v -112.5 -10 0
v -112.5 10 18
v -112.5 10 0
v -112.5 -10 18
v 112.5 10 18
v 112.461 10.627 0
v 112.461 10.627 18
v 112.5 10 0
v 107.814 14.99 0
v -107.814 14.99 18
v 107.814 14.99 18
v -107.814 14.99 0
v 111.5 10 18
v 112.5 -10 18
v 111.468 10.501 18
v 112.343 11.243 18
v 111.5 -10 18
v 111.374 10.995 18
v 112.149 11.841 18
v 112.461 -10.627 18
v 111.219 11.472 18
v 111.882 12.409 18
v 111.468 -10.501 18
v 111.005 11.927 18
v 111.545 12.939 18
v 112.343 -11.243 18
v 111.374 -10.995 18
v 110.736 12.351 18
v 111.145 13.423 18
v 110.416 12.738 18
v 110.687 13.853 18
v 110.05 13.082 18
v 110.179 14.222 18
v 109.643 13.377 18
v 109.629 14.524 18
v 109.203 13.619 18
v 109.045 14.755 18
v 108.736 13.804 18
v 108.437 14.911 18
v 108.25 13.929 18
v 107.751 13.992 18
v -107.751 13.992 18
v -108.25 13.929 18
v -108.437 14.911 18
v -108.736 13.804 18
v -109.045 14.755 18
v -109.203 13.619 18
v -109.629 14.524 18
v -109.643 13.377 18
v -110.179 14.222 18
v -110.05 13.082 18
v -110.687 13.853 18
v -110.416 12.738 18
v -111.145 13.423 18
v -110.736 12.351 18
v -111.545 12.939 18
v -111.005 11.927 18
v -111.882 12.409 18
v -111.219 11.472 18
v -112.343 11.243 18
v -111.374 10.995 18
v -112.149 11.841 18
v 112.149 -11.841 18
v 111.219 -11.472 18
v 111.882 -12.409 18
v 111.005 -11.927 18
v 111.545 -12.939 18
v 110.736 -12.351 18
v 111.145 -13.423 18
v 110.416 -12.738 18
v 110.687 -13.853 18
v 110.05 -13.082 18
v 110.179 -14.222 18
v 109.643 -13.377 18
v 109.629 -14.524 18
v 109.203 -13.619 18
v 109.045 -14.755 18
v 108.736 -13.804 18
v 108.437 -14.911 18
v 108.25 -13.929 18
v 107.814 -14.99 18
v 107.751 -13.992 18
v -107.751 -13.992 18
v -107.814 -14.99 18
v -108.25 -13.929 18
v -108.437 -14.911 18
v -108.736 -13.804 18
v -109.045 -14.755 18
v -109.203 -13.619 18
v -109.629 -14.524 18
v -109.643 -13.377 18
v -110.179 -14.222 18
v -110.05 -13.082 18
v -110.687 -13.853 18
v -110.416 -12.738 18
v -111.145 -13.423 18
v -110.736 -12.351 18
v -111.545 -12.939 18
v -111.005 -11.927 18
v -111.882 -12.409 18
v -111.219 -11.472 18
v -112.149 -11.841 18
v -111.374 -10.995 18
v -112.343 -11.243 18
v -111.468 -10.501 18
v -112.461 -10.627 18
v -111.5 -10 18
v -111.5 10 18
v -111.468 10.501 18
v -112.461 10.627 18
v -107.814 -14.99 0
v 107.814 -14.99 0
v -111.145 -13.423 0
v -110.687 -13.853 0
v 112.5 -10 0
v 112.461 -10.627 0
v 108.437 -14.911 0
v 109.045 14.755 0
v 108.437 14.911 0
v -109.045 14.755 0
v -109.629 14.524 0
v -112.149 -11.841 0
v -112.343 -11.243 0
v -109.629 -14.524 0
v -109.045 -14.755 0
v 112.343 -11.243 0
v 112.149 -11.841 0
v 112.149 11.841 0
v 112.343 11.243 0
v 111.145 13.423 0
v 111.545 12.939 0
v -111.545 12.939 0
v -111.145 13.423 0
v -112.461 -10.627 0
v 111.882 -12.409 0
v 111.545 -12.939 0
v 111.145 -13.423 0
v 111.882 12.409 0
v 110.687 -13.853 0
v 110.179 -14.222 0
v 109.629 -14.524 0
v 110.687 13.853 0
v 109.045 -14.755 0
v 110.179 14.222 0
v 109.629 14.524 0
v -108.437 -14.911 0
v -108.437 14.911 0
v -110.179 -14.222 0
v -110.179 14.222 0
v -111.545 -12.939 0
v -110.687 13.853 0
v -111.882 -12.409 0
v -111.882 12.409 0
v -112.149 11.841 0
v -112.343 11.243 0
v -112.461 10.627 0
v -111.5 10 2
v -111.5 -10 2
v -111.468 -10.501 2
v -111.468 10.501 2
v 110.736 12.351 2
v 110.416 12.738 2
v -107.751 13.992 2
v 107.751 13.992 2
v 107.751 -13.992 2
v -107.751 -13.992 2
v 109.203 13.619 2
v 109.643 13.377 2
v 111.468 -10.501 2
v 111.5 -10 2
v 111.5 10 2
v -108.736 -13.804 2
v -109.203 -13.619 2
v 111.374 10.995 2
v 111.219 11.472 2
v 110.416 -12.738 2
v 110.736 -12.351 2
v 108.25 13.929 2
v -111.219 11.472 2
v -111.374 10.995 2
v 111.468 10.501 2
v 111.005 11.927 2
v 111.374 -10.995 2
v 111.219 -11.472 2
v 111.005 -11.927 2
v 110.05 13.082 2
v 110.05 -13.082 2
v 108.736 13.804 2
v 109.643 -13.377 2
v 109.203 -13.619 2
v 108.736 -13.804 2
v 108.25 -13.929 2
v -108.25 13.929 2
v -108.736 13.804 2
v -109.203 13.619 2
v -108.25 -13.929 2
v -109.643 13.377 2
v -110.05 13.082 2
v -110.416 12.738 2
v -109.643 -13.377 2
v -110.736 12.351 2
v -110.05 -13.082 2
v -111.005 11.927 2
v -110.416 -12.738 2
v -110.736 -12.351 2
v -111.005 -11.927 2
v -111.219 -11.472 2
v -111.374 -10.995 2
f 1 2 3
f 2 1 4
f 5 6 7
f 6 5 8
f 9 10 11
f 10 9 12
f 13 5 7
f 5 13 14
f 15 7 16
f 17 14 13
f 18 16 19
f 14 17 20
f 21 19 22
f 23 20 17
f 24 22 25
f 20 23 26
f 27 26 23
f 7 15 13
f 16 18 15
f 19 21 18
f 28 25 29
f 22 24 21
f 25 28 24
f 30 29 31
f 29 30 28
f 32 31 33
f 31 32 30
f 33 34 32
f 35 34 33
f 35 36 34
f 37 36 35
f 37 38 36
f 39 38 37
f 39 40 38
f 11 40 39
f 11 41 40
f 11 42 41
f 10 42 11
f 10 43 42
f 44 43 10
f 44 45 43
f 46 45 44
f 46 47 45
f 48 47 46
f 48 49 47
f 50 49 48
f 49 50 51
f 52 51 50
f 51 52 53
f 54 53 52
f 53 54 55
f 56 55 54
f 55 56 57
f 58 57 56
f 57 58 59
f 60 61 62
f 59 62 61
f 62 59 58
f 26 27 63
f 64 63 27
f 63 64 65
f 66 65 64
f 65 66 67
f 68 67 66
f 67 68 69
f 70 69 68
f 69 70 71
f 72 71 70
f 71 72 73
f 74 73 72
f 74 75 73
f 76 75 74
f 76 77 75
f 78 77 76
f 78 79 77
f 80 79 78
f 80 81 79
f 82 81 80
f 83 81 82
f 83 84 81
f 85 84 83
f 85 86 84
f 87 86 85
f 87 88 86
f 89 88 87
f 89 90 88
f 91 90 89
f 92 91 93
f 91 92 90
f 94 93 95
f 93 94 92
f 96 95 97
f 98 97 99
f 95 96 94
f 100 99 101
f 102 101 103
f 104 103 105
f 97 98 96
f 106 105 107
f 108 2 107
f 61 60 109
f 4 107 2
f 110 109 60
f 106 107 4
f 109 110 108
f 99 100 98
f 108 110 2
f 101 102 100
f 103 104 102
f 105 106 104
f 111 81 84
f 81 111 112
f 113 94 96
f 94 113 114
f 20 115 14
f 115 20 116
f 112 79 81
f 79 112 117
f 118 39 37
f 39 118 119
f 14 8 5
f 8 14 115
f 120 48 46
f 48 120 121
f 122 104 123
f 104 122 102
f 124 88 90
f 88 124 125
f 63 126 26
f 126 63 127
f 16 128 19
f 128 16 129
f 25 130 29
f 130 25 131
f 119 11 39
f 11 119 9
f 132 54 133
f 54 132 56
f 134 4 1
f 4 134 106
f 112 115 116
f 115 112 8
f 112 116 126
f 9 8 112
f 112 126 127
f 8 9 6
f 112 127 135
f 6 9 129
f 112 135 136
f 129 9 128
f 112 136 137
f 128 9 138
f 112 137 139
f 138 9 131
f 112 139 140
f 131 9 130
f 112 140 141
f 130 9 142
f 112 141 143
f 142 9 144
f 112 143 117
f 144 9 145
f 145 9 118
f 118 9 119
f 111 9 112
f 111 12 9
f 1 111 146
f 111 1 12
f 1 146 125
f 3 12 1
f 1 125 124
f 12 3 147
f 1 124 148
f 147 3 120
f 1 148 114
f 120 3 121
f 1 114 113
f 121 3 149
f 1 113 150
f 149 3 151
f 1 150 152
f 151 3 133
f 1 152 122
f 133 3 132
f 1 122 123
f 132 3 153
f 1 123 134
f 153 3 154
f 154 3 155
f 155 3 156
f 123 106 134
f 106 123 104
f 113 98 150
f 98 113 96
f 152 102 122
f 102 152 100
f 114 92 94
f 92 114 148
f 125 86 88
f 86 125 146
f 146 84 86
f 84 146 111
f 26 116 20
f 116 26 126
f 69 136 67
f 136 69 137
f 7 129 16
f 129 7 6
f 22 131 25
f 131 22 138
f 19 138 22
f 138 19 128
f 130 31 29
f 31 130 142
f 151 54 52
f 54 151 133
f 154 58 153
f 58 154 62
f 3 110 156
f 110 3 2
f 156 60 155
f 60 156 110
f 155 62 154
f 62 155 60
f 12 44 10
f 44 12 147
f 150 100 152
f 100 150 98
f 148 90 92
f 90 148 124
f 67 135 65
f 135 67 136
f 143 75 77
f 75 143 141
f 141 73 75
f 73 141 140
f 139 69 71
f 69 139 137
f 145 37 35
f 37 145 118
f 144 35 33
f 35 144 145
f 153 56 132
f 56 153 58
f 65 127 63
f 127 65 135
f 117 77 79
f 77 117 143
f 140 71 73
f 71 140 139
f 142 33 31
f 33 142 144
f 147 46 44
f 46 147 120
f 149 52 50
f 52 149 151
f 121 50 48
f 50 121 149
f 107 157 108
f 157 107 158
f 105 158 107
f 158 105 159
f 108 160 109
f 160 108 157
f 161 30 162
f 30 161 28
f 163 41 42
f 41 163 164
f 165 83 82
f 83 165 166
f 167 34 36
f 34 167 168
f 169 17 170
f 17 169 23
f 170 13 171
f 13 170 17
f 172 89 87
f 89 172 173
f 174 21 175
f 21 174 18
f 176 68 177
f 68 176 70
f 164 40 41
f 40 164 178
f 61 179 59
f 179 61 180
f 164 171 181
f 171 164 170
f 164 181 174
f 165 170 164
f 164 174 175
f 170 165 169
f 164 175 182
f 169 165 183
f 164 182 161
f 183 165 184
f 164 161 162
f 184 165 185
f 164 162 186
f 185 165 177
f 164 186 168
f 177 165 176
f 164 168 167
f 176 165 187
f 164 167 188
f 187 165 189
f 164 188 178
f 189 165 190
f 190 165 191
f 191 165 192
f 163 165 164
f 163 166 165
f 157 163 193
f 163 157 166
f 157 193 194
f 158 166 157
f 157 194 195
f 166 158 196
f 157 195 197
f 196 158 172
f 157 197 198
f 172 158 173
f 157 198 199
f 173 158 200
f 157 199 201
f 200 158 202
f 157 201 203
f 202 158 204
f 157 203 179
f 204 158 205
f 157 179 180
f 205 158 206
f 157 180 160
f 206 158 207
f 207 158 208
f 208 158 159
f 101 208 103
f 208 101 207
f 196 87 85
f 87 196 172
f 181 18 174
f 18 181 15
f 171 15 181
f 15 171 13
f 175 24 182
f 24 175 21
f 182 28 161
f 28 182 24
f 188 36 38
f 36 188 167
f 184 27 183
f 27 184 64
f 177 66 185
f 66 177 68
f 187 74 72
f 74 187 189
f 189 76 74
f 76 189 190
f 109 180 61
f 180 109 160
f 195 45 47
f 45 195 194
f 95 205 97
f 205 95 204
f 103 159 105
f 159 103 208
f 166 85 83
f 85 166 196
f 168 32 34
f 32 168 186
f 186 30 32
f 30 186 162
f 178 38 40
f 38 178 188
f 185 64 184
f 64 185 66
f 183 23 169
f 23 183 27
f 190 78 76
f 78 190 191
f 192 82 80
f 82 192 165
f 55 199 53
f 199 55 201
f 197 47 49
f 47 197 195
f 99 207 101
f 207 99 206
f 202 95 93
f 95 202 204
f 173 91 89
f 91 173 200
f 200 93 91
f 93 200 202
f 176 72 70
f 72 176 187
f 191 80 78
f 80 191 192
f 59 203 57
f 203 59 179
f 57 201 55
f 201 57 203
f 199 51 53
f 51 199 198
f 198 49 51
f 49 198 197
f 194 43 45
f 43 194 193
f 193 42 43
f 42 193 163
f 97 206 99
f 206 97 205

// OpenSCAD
$fn = 50;


difference() {
	union() {
		hull() {
			translate(v = [-107.5000000000, 10.0000000000, 0]) {
				cylinder(h = 18, r = 5);
			}
			translate(v = [107.5000000000, 10.0000000000, 0]) {
				cylinder(h = 18, r = 5);
			}
			translate(v = [-107.5000000000, -10.0000000000, 0]) {
				cylinder(h = 18, r = 5);
			}
			translate(v = [107.5000000000, -10.0000000000, 0]) {
				cylinder(h = 18, r = 5);
			}
		}
	}
	union() {
		translate(v = [0, 0, 2]) {
			hull() {
				translate(v = [-107.5000000000, 10.0000000000, 0]) {
					cylinder(h = 16, r = 4);
				}
				translate(v = [107.5000000000, 10.0000000000, 0]) {
					cylinder(h = 16, r = 4);
				}
				translate(v = [-107.5000000000, -10.0000000000, 0]) {
					cylinder(h = 16, r = 4);
				}
				translate(v = [107.5000000000, -10.0000000000, 0]) {
					cylinder(h = 16, r = 4);
				}
			}
		}
	}
}
